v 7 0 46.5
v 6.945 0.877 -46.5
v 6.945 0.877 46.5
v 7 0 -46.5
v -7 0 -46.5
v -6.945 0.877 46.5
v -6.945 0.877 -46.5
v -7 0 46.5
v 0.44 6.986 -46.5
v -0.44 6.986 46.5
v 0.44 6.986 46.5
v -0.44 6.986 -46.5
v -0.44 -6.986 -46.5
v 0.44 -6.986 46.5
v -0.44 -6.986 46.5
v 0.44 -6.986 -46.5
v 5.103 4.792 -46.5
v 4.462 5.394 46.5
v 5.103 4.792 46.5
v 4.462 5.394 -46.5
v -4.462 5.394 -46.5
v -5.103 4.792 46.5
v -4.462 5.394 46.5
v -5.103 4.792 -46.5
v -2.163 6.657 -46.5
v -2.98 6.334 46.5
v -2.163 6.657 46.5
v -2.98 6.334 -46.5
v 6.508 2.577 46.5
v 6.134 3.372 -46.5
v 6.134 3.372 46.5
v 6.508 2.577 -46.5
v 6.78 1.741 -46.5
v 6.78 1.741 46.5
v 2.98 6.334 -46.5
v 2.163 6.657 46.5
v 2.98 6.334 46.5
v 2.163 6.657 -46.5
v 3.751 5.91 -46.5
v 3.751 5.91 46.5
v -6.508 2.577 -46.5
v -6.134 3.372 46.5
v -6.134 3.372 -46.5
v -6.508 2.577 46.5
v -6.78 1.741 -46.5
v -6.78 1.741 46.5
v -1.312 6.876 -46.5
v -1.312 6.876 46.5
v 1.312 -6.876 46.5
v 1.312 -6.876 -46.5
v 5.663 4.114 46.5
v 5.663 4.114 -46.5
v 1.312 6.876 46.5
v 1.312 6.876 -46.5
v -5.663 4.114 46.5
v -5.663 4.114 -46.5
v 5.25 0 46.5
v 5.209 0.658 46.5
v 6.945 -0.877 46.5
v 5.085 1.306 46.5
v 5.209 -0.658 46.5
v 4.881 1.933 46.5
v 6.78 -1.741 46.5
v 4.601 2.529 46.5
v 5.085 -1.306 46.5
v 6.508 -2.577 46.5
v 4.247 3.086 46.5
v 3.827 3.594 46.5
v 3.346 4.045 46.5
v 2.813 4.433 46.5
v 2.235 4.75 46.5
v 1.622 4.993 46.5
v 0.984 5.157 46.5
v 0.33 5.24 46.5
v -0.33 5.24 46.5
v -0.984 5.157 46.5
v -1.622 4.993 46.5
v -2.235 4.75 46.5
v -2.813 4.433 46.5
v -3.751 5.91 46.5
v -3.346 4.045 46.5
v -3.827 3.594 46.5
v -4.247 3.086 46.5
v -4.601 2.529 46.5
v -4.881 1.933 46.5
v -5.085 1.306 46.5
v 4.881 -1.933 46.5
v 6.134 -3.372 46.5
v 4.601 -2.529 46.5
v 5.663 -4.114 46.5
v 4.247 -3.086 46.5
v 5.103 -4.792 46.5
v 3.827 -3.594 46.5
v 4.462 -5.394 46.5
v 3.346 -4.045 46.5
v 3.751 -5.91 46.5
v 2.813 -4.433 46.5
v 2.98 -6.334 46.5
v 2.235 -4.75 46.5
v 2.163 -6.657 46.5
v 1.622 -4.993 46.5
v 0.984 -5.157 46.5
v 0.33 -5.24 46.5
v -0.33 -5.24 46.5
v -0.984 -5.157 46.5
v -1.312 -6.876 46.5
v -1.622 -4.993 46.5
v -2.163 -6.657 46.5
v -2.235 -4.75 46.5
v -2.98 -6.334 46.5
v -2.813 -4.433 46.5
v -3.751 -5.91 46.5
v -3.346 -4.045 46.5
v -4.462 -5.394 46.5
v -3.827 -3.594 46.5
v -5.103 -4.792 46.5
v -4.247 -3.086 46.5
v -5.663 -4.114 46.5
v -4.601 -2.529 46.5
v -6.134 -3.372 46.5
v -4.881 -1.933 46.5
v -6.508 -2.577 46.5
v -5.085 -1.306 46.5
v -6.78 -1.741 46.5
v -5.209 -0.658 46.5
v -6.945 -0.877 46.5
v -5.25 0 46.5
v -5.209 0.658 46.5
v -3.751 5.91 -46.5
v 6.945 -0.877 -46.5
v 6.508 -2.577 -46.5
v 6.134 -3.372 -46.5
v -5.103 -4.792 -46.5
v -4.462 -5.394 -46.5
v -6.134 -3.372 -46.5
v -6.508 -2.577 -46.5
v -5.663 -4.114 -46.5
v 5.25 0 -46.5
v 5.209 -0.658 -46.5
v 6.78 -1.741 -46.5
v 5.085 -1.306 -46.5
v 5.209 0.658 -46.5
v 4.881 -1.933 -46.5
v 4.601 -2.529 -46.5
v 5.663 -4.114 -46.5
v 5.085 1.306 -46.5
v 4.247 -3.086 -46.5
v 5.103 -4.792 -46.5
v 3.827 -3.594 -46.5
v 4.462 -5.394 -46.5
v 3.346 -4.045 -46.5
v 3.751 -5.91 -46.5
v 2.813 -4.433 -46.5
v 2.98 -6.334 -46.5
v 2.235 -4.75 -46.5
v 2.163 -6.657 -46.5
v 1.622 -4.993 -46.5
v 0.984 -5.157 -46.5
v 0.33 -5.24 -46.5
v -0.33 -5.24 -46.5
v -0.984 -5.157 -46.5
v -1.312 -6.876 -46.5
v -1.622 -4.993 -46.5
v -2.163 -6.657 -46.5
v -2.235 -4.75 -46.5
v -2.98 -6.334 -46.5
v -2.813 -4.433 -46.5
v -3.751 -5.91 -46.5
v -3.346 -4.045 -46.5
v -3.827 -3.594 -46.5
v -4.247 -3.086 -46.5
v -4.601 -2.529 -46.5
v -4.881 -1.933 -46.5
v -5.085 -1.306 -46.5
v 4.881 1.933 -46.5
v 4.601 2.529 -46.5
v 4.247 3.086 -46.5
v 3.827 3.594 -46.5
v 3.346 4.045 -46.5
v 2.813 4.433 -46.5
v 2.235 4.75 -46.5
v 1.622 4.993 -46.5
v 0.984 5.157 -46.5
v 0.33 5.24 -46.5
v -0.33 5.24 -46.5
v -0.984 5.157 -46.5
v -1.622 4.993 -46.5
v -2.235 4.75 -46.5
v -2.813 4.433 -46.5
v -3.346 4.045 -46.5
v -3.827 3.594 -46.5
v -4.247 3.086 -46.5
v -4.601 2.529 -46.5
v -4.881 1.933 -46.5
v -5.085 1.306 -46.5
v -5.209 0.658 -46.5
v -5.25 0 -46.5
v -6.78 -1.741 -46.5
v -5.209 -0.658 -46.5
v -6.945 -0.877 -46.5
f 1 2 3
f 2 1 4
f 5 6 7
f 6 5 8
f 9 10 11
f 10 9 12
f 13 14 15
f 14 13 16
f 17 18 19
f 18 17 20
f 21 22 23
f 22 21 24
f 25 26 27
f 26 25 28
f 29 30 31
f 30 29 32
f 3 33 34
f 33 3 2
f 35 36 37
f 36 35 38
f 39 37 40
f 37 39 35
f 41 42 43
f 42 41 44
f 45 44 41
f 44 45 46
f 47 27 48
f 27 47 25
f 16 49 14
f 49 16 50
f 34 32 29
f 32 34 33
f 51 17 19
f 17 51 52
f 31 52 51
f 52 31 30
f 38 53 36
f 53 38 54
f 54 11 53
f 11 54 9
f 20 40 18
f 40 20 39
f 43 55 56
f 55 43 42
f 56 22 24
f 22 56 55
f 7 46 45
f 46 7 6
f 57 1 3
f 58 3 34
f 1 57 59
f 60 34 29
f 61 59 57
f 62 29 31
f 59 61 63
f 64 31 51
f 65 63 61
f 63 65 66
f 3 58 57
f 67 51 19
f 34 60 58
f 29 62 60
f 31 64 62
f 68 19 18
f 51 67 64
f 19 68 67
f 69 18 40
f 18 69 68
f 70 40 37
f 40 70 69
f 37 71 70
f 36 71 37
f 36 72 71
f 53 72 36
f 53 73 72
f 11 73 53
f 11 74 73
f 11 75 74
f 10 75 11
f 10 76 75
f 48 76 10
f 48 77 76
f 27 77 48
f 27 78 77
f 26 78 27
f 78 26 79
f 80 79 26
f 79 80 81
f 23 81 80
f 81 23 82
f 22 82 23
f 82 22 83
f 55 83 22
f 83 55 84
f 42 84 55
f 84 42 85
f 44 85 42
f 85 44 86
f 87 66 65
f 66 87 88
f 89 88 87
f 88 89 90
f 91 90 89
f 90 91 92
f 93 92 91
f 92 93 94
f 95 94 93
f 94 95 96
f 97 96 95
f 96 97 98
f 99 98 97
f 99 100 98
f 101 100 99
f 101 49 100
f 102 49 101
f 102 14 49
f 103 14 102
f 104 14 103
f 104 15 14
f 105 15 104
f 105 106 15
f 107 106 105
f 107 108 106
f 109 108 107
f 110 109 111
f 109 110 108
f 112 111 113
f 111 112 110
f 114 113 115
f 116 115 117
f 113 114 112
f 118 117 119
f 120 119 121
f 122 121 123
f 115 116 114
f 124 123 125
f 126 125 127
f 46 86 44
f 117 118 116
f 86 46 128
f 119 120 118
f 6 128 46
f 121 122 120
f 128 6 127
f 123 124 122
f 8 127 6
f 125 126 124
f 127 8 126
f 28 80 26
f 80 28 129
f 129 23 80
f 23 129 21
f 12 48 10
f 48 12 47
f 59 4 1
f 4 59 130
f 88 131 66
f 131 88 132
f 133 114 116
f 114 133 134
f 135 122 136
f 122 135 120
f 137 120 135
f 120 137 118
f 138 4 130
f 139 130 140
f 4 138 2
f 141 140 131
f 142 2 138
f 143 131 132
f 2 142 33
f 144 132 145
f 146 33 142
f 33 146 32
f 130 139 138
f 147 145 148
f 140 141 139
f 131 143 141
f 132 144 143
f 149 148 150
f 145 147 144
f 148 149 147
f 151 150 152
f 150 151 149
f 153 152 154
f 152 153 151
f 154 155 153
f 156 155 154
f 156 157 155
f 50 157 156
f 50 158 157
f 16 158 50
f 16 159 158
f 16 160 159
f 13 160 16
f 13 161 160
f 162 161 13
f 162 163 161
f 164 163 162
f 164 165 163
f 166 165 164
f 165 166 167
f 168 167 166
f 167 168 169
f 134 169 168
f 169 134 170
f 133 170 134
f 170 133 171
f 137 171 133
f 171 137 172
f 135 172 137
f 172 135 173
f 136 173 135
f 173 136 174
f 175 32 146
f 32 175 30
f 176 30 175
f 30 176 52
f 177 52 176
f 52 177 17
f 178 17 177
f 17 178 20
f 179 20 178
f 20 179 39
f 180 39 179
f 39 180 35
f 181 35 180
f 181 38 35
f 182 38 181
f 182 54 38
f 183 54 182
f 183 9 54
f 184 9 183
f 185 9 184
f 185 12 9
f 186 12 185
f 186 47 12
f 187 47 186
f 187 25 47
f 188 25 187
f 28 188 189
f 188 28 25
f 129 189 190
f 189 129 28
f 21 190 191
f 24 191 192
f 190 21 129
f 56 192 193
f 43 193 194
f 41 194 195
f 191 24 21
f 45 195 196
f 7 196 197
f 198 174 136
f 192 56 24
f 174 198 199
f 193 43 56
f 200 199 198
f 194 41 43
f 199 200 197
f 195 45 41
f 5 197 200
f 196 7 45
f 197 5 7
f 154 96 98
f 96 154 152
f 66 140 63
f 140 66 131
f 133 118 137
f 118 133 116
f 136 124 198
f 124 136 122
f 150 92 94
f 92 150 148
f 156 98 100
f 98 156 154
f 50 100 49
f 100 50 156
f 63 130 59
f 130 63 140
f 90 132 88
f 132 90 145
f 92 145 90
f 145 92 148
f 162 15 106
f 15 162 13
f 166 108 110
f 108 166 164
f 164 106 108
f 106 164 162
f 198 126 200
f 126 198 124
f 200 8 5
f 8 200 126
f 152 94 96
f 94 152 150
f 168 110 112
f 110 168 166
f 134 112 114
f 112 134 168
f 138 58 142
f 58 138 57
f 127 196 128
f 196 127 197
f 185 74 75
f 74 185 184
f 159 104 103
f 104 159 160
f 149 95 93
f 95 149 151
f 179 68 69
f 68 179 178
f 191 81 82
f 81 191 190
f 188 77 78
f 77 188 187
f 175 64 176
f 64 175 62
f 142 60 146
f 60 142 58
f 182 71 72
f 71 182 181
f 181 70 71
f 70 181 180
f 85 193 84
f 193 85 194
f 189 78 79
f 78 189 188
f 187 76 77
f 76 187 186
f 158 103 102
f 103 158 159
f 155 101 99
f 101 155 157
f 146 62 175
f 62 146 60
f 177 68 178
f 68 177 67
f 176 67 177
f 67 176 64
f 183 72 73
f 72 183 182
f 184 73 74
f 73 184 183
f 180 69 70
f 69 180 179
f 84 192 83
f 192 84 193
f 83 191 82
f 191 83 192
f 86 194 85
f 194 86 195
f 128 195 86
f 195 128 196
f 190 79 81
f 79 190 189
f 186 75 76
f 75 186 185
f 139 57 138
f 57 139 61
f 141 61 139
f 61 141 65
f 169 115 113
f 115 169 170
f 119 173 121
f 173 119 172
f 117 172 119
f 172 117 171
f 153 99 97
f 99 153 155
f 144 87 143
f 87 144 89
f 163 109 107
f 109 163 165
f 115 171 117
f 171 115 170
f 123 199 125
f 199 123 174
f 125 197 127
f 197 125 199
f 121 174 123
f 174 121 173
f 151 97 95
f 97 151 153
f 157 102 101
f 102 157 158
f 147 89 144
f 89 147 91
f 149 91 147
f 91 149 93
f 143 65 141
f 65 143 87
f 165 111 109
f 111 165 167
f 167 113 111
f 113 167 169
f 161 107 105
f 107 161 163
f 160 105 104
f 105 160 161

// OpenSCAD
$fn = 50;


difference() {
	union() {
		translate(v = [0, 0, -46.5000000000]) {
			cylinder(h = 93, r = 7.0000000000);
		}
	}
	union() {
		translate(v = [0, 0, -100.0000000000]) {
			cylinder(h = 200, r = 5.2500000000);
		}
	}
}
